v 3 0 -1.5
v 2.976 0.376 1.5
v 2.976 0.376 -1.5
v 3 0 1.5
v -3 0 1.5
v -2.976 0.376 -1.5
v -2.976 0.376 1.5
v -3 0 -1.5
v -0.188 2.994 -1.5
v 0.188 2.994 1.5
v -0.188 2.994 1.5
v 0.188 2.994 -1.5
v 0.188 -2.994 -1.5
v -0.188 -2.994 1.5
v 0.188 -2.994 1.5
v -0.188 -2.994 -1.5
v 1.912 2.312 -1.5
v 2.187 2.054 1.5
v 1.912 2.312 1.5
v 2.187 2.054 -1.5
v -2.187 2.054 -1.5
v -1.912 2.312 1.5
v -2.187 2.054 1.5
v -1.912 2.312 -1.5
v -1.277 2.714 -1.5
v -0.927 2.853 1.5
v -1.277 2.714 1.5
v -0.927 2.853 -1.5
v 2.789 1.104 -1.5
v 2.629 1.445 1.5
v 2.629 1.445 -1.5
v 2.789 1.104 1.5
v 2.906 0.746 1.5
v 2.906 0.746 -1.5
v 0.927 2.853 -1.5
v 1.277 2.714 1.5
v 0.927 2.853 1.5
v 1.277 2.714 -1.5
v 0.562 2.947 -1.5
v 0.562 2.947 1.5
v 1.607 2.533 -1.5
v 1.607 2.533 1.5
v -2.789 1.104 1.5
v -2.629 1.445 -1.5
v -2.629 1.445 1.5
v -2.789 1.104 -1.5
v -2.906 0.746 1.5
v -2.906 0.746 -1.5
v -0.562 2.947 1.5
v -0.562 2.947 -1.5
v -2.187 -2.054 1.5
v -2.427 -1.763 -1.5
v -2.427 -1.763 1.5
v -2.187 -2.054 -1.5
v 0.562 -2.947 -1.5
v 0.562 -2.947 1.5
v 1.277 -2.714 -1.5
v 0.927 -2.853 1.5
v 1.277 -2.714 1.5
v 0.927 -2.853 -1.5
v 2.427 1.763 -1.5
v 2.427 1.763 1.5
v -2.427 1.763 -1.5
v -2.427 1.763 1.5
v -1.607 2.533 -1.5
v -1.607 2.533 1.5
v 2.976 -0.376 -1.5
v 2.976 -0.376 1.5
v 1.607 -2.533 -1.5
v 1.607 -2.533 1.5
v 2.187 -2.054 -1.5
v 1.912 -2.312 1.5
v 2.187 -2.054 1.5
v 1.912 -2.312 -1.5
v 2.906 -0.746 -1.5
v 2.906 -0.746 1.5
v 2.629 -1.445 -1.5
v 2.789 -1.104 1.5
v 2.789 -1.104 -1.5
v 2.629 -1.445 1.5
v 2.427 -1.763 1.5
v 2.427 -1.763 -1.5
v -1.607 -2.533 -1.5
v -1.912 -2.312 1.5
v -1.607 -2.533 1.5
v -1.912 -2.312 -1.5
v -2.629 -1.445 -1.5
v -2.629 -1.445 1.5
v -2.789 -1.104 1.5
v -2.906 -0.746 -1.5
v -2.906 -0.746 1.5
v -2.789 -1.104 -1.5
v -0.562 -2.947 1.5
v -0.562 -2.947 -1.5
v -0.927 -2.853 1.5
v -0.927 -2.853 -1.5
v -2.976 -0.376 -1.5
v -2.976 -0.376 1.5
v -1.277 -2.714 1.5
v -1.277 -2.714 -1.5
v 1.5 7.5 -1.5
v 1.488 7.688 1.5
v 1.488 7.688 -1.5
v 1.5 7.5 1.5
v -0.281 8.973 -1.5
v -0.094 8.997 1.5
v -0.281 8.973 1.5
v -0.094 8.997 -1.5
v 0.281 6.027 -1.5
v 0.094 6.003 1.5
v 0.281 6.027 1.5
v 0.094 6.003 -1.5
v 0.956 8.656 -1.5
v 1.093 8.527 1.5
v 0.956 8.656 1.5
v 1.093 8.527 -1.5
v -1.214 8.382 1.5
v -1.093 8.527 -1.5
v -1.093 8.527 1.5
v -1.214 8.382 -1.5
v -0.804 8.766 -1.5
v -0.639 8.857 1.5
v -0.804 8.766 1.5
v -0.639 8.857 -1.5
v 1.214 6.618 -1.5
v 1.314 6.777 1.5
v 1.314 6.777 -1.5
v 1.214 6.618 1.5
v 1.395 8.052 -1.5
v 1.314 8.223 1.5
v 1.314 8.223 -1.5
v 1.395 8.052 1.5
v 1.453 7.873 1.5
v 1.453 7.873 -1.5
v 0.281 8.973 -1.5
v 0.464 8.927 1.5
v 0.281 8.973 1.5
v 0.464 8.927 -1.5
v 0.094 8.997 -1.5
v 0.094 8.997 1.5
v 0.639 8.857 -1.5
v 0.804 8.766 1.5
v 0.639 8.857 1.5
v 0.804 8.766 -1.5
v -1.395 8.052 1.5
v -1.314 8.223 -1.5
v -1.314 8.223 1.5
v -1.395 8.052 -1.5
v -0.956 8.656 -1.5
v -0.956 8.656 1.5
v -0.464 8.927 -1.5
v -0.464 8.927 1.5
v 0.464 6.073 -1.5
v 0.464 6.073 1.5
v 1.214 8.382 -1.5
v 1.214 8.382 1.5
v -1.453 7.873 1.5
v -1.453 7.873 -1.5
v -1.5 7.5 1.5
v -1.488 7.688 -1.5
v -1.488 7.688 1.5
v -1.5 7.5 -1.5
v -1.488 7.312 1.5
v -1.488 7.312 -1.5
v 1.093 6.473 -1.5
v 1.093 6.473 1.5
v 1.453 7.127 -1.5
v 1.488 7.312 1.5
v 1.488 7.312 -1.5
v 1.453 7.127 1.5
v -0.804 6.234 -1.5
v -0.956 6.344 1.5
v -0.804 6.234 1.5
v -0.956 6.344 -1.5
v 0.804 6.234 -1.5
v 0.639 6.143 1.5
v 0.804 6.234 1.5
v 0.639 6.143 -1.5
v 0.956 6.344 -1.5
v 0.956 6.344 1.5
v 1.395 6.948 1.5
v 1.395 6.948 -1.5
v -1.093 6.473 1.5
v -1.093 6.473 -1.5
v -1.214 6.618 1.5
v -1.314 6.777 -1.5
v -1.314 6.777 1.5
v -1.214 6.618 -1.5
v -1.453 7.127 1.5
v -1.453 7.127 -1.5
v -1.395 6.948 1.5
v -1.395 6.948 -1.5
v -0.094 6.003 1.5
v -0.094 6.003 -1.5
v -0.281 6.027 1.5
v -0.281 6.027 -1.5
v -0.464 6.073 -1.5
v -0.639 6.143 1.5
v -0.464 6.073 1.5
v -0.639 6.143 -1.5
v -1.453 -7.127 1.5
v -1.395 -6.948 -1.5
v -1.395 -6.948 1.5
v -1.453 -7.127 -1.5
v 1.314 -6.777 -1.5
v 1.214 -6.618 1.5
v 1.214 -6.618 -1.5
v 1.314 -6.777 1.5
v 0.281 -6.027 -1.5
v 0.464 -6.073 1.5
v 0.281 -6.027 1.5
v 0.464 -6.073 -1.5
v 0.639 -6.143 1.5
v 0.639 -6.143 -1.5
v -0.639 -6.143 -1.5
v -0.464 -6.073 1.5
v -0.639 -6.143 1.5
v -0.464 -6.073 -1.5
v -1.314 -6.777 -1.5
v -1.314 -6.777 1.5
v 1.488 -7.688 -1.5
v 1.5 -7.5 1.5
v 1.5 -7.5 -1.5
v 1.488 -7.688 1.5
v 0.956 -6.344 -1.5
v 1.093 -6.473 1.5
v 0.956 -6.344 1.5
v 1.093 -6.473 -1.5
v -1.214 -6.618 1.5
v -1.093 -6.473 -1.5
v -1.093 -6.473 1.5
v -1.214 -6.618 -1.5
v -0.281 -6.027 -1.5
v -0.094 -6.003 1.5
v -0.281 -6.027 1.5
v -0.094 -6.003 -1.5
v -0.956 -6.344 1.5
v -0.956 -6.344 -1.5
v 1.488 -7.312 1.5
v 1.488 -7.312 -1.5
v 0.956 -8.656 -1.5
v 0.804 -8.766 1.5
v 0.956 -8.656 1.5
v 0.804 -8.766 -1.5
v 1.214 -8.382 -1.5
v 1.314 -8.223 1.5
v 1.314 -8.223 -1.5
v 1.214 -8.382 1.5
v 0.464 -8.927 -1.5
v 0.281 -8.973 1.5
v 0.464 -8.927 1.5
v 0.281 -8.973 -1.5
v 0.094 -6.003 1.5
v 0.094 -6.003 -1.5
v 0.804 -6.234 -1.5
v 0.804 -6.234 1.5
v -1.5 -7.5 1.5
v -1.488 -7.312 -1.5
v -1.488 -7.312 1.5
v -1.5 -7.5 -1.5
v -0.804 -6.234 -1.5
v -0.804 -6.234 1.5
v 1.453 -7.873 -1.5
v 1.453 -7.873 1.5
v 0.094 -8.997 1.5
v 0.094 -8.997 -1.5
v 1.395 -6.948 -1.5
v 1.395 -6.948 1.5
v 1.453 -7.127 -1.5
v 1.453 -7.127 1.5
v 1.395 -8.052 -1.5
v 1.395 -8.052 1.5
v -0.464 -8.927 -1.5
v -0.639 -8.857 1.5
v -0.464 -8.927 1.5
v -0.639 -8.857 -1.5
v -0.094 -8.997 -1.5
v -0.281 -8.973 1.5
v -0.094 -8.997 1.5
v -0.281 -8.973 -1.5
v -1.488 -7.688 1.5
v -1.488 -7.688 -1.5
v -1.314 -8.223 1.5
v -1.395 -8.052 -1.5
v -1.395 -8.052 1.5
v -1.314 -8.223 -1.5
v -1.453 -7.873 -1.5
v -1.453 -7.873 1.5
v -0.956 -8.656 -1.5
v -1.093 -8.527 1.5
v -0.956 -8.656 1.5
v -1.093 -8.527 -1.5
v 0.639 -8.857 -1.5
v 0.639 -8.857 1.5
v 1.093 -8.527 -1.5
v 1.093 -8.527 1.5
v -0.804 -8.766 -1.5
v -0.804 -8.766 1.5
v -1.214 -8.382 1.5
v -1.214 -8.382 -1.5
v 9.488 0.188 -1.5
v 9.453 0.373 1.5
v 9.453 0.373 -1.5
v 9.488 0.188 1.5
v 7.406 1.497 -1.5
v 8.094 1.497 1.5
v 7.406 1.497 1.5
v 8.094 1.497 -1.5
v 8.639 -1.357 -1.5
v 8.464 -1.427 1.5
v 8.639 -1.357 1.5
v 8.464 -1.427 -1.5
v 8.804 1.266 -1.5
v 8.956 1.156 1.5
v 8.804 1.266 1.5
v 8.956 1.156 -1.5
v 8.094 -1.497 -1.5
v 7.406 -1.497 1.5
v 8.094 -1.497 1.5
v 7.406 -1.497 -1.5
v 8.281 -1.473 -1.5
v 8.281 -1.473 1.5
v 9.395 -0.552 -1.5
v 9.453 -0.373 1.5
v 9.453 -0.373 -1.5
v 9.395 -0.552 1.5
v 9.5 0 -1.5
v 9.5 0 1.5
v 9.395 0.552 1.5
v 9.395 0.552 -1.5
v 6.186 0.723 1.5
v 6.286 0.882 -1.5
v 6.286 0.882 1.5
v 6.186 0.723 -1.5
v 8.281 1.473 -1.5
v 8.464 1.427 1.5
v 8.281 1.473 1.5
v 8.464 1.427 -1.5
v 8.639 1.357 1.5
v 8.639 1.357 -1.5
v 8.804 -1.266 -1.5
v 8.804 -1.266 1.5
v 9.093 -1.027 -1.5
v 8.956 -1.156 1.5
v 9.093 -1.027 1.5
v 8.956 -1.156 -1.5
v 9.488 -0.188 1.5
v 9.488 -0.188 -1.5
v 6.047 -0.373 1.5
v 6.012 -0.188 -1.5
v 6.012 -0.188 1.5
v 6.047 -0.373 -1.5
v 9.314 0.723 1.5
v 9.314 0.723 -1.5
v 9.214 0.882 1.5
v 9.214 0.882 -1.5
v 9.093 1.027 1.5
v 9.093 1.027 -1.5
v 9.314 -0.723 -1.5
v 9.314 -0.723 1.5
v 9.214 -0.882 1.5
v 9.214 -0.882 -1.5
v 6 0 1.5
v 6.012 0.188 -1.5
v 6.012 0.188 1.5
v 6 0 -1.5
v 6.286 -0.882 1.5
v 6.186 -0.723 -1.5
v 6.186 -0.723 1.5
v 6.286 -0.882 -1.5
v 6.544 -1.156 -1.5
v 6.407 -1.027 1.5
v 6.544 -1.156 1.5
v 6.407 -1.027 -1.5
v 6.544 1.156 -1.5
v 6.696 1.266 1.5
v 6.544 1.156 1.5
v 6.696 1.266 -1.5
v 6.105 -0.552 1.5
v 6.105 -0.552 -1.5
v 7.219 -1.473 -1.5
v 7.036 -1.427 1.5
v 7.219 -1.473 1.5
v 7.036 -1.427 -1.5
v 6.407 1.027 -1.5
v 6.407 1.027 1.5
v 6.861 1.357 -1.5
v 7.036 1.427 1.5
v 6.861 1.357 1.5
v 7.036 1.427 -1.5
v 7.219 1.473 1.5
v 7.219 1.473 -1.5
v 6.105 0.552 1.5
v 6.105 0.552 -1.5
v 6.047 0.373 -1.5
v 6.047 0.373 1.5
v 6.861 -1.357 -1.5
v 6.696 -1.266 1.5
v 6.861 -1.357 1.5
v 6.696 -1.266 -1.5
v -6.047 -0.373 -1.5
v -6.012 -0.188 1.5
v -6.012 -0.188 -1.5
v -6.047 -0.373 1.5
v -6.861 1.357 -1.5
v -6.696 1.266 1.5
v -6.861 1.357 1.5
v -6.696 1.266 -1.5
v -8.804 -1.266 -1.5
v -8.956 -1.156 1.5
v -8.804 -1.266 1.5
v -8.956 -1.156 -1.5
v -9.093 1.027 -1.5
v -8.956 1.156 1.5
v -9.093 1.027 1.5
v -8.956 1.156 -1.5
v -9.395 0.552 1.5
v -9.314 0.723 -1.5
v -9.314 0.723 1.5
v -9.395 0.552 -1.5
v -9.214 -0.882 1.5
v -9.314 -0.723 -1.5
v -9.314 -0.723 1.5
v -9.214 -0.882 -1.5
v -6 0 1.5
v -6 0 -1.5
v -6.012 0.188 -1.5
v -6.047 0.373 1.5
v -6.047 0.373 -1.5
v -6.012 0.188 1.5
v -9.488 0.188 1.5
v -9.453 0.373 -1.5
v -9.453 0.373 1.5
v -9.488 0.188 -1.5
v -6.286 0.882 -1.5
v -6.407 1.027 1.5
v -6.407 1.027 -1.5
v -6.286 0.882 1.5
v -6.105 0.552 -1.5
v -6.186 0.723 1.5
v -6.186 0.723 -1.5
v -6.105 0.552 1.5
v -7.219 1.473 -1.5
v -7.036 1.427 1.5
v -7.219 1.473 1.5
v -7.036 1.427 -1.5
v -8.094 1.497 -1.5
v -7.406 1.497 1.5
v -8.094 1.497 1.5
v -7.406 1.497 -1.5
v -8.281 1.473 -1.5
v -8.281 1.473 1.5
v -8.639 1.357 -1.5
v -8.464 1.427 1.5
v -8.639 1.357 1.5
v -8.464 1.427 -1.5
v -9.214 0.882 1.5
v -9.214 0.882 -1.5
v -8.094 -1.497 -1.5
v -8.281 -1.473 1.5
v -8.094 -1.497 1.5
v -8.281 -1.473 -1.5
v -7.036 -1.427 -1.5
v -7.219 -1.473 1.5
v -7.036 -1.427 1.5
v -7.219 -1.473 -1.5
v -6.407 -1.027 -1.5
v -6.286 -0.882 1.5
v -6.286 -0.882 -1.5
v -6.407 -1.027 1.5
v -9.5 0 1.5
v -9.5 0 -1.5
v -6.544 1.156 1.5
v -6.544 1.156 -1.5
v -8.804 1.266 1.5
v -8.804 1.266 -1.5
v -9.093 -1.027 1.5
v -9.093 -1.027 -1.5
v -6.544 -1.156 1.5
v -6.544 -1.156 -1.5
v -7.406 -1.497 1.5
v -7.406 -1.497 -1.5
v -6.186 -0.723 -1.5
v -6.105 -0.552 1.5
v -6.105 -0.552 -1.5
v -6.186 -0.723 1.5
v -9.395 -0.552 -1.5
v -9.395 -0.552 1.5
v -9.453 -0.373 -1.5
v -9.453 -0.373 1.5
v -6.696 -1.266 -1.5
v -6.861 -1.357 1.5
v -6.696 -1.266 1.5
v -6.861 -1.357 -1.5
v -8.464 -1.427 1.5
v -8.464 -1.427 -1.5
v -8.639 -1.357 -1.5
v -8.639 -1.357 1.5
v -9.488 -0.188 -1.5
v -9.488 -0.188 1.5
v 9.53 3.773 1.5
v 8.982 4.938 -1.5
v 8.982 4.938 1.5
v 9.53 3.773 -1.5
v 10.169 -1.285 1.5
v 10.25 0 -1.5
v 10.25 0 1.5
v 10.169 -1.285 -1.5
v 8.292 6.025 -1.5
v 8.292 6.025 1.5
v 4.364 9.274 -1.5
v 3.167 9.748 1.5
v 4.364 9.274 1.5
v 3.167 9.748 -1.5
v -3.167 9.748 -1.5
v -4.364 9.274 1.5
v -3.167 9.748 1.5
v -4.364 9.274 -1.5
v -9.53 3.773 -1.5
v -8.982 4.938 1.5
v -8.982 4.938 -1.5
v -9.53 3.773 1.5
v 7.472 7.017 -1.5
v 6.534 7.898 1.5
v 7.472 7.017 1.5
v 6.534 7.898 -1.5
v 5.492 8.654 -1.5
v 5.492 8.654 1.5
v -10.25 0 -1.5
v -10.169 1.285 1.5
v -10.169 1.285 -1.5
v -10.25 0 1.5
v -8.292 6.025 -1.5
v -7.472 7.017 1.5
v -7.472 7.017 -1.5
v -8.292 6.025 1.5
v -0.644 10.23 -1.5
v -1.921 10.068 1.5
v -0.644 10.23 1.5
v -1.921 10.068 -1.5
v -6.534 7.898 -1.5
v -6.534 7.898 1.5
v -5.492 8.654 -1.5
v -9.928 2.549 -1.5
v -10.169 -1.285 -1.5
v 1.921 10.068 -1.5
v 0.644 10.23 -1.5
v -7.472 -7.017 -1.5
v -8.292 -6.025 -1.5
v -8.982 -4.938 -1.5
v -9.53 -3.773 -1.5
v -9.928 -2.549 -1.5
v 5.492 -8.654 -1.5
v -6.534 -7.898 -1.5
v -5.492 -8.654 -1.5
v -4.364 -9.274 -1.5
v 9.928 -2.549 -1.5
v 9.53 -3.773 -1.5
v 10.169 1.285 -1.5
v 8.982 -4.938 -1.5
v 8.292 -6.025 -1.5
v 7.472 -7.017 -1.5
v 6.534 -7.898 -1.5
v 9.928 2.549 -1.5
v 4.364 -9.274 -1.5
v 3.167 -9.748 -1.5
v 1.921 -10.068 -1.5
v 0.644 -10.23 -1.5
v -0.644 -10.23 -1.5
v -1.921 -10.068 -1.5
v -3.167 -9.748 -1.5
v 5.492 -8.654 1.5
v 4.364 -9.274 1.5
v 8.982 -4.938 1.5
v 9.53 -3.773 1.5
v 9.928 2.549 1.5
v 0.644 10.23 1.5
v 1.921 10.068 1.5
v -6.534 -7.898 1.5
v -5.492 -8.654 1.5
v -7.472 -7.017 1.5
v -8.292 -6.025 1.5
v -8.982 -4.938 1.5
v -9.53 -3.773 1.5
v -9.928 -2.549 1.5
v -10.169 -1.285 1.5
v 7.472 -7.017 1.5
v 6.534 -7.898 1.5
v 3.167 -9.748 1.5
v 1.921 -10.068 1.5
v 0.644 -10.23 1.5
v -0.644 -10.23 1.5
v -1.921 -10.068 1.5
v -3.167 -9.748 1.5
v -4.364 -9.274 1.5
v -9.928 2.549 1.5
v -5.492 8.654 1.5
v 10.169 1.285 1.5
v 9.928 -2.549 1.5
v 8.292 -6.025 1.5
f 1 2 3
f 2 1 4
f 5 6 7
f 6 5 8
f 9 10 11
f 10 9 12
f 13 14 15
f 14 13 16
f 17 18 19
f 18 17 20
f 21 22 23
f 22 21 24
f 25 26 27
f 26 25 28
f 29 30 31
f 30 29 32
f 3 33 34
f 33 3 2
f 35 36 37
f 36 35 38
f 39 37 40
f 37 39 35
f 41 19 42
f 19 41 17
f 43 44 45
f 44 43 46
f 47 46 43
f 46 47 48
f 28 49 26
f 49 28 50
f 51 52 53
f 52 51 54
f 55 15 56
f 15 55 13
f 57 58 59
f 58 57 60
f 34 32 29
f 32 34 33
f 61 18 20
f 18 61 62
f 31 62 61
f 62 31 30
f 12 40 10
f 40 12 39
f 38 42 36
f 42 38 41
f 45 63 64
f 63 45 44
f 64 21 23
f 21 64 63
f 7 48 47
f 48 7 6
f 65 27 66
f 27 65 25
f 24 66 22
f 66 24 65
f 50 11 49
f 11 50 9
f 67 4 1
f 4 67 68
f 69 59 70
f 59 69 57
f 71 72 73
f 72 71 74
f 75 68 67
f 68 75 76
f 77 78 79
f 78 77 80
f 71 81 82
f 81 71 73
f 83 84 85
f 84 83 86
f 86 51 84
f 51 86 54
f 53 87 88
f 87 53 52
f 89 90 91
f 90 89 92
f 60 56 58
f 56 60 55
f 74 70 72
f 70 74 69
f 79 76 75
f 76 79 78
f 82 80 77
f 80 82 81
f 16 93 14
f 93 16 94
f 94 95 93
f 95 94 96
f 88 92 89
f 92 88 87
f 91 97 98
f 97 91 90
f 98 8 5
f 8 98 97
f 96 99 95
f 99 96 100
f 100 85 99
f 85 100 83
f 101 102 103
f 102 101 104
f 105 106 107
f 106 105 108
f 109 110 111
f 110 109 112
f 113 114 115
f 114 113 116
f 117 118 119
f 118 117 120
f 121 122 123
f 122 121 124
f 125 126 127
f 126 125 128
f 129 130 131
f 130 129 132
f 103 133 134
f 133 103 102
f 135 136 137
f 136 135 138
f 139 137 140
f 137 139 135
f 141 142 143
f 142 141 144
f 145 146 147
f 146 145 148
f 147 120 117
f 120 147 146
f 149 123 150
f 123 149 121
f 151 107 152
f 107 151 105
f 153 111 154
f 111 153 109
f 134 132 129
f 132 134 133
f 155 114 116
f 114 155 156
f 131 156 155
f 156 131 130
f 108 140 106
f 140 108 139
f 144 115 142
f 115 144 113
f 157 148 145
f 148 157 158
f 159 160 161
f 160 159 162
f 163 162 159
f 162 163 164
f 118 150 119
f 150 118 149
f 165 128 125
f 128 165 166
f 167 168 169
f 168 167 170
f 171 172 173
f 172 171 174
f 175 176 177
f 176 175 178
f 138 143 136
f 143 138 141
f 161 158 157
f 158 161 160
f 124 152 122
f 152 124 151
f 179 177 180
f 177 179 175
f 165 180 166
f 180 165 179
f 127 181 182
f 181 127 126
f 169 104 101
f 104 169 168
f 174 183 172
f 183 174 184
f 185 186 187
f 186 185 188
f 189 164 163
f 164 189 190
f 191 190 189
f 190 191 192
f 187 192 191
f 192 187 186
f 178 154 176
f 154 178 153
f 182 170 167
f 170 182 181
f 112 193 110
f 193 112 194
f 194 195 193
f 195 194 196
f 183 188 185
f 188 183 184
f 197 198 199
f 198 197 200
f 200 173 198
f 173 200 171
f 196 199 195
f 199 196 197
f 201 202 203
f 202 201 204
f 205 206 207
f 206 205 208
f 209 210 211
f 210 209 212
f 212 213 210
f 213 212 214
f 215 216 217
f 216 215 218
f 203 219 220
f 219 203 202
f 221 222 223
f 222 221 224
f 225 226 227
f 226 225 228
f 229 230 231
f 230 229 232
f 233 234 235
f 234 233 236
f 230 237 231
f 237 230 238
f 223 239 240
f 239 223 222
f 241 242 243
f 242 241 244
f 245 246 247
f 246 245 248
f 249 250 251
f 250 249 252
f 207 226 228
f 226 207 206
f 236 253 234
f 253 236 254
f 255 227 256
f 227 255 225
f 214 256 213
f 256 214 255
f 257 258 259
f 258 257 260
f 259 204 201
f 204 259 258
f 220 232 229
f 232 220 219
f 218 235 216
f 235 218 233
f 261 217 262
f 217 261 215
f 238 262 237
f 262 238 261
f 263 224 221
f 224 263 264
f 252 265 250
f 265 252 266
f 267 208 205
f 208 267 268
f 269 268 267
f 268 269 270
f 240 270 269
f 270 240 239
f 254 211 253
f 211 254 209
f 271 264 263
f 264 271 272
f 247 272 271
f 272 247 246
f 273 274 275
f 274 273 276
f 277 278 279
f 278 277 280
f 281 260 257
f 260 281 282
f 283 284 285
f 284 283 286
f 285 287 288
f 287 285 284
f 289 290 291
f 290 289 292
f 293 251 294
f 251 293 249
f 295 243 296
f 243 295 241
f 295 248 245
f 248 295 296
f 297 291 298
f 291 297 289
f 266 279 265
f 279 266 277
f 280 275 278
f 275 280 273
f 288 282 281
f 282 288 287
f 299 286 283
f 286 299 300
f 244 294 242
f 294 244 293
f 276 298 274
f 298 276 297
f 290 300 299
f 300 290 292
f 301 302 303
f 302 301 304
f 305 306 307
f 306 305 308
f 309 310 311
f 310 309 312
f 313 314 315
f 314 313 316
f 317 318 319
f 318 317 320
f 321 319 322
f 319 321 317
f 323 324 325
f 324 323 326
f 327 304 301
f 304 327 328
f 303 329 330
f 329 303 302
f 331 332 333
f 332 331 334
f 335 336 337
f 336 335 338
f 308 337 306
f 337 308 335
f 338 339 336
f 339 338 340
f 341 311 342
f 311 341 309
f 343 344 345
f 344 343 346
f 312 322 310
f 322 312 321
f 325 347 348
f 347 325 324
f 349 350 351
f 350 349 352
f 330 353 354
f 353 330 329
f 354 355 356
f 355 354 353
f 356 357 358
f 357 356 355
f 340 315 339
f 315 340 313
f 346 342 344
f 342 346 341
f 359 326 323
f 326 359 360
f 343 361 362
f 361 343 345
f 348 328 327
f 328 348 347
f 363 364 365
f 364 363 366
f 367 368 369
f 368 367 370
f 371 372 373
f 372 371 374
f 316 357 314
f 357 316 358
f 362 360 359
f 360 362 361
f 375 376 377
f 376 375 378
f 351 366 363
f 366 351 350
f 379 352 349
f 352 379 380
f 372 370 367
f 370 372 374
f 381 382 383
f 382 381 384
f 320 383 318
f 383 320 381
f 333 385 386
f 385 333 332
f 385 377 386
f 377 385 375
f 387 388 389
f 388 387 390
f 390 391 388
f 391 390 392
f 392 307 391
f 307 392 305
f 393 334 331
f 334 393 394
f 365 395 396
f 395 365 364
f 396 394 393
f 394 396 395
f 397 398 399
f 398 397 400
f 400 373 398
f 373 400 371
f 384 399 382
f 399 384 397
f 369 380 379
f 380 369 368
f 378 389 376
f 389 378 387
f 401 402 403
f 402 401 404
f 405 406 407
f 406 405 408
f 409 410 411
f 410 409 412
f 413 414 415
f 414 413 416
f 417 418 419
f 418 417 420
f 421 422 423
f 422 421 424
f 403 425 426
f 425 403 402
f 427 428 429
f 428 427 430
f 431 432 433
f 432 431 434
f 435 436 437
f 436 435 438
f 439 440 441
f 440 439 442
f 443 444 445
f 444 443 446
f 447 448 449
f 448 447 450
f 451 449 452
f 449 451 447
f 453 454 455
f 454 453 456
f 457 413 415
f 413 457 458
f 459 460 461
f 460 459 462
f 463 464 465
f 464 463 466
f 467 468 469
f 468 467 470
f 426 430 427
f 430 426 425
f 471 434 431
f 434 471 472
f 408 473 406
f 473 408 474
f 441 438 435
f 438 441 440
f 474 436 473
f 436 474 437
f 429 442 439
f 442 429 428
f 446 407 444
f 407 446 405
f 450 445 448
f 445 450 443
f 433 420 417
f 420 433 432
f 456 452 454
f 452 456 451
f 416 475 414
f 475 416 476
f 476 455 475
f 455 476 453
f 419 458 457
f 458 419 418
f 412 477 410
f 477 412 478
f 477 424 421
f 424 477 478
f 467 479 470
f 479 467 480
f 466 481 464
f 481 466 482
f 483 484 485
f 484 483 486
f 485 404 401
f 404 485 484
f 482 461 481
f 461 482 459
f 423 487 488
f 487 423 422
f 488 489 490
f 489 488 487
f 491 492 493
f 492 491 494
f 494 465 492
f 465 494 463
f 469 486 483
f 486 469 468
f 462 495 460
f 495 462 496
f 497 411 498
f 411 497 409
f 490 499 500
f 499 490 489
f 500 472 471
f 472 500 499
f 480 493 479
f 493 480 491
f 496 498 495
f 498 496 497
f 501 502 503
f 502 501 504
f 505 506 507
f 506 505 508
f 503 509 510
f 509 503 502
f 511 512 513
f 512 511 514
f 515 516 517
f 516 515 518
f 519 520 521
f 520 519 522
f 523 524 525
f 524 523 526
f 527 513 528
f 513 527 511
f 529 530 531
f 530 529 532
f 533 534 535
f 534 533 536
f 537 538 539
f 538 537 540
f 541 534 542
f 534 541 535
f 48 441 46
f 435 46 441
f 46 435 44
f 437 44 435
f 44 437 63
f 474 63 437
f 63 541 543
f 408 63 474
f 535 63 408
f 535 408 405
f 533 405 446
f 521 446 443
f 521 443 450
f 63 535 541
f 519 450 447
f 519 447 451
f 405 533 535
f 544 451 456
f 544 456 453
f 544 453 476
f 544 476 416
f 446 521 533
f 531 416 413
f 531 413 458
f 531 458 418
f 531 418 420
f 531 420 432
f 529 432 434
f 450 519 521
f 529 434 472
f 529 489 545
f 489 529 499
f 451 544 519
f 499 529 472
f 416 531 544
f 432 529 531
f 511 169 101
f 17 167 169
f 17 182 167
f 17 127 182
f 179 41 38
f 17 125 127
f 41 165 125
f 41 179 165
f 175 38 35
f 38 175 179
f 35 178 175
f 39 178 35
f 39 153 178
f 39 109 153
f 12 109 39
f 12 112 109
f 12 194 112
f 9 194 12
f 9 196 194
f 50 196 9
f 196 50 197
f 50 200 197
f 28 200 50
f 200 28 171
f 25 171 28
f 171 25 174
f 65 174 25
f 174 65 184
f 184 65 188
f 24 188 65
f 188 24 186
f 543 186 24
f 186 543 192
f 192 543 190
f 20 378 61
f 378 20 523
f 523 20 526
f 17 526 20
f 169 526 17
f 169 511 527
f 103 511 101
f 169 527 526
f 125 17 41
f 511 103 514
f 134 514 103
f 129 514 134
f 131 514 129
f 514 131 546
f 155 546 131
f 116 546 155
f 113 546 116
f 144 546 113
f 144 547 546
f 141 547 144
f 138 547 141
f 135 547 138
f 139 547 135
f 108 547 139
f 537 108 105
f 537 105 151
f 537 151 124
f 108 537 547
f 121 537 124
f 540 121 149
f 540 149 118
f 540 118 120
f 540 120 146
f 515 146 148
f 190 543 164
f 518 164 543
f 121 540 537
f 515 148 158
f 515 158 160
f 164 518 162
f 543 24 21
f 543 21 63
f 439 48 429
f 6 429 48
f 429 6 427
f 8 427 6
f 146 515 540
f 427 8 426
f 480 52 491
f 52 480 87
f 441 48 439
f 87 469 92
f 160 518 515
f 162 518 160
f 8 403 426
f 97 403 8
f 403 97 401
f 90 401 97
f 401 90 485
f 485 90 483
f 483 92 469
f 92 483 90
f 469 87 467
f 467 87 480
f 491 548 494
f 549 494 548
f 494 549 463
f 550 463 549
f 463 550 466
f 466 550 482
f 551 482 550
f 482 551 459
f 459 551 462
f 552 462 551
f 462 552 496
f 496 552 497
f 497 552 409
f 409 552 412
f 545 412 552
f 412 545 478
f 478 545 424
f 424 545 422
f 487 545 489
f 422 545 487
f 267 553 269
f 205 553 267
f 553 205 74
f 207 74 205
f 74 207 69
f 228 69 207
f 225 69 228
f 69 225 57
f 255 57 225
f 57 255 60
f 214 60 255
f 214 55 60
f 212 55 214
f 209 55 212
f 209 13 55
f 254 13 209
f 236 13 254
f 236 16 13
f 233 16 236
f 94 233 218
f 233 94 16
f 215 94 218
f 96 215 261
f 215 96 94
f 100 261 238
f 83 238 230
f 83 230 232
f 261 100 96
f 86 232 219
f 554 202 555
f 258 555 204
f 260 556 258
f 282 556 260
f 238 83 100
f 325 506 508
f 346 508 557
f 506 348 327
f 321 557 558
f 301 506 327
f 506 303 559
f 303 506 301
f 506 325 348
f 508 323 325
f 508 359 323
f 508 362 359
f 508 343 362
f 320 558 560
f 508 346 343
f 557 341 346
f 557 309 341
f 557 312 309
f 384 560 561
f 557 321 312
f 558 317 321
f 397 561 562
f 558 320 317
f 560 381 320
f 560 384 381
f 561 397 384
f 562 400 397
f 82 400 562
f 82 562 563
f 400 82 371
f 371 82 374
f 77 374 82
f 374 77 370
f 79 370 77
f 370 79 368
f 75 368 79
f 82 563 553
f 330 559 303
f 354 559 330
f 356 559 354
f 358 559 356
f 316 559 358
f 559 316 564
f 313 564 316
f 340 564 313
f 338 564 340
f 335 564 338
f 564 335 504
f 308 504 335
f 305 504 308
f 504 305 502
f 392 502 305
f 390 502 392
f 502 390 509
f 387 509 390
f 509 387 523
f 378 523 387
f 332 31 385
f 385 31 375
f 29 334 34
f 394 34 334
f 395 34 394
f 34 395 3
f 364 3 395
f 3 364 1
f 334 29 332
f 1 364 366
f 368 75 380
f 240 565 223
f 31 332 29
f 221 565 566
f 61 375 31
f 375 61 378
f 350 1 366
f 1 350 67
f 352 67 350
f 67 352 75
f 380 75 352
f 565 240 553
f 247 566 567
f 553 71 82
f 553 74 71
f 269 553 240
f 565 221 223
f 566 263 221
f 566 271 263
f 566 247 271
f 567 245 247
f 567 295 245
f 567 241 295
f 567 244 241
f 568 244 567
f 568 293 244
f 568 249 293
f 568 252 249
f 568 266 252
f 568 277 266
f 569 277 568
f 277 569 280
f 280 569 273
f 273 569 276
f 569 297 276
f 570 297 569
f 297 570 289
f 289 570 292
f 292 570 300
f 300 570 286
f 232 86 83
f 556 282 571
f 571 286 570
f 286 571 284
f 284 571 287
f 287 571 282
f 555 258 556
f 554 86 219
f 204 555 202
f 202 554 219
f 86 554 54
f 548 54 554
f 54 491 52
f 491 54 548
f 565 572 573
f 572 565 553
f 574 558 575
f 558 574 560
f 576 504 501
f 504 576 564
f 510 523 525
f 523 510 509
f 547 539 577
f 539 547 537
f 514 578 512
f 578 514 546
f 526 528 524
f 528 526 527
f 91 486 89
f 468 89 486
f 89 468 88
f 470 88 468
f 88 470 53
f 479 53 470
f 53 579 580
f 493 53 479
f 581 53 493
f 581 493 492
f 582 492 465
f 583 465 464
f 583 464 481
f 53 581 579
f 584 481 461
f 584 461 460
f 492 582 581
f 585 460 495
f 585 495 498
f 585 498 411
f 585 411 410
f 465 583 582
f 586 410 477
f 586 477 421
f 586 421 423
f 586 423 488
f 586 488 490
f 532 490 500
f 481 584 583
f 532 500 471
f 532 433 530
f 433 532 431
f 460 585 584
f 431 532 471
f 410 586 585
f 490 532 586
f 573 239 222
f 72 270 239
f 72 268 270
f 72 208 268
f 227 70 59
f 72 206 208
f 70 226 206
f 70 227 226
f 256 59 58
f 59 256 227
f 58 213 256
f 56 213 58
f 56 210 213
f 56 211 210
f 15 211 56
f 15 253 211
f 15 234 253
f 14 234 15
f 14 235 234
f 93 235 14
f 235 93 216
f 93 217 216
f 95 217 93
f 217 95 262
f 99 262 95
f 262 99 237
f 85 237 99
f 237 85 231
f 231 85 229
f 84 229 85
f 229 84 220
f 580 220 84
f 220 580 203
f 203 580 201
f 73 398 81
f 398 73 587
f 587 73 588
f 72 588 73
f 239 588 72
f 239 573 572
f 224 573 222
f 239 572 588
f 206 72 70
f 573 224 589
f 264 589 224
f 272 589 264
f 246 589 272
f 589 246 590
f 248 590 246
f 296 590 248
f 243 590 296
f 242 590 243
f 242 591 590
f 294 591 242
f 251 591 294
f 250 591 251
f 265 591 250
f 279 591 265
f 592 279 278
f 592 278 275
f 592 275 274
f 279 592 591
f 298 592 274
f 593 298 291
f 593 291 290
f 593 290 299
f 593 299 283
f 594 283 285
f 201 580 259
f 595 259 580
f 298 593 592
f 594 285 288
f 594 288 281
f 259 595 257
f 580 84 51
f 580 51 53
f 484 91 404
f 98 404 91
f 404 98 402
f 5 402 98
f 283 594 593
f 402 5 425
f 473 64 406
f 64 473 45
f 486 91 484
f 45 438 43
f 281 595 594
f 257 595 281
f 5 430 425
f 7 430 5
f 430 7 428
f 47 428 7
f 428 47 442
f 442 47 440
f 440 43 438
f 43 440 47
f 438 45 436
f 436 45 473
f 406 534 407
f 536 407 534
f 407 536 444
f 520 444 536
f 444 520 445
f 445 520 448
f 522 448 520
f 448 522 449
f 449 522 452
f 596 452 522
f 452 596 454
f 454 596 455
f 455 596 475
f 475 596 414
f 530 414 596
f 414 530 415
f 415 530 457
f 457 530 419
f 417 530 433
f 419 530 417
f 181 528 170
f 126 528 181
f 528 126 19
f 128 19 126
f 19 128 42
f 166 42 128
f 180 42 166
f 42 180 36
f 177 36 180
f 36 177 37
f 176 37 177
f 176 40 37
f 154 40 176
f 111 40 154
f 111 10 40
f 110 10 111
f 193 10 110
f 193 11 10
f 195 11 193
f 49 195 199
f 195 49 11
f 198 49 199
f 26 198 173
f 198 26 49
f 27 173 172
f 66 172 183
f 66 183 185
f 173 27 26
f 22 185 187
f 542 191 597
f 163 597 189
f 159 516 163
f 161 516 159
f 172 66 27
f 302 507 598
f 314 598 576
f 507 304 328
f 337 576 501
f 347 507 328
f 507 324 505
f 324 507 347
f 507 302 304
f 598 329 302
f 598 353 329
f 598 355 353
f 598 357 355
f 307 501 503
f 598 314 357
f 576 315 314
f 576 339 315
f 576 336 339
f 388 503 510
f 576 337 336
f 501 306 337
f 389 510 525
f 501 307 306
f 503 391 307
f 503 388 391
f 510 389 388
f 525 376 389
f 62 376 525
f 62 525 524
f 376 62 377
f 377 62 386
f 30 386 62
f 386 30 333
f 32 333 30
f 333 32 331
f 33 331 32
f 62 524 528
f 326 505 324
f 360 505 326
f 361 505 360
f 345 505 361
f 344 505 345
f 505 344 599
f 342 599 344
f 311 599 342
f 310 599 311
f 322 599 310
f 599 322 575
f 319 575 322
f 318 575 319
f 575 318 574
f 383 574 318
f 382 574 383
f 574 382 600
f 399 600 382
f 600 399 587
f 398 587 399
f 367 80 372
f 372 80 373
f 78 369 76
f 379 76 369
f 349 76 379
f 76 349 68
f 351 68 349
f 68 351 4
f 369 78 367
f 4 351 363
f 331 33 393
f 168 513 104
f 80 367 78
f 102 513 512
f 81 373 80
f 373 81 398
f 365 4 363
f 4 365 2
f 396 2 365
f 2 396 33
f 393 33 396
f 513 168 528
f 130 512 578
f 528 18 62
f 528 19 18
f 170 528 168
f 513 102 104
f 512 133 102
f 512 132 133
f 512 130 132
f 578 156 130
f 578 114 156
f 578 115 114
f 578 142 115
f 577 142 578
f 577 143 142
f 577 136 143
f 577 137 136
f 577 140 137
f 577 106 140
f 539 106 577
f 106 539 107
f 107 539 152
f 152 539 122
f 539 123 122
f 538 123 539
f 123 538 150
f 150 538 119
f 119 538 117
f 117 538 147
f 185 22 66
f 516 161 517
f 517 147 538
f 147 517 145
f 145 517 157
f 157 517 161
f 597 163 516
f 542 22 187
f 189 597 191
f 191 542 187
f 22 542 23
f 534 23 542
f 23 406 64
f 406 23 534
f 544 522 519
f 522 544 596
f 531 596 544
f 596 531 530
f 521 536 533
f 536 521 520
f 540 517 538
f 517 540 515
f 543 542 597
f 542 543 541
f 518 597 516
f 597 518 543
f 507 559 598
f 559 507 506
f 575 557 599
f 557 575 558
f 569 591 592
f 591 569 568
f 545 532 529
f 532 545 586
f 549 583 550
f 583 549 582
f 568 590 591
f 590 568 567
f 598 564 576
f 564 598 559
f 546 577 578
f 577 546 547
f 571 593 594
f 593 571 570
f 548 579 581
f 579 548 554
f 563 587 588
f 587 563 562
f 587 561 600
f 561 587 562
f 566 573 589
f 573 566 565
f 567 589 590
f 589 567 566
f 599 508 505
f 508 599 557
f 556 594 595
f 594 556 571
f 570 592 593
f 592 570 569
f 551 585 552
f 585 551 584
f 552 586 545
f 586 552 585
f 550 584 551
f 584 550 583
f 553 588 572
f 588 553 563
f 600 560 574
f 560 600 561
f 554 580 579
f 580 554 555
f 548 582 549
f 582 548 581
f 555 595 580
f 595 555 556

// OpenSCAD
$fn = 50;


difference() {
	union() {
		translate(v = [0, 0, -1.5000000000]) {
			rotate(a = [0, 0, 0]) {
				cylinder(h = 3, r = 10.2500000000);
			}
		}
	}
	union() {
		translate(v = [0, 0, -125.0000000000]) {
			rotate(a = [0, 0, 0]) {
				cylinder(h = 250, r = 3.0000000000);
			}
		}
		translate(v = [0, 7.5000000000, -125.0000000000]) {
			rotate(a = [0, 0, 0]) {
				cylinder(h = 250, r = 1.5000000000);
			}
		}
		translate(v = [0, -7.5000000000, -125.0000000000]) {
			rotate(a = [0, 0, 0]) {
				cylinder(h = 250, r = 1.5000000000);
			}
		}
		translate(v = [7.7500000000, 0, -125.0000000000]) {
			rotate(a = [0, 0, 0]) {
				hull() {
					translate(v = [0.2500000000, 0, 0]) {
						rotate(a = [0, 0, 0]) {
							translate(v = [0, 0, 0]) {
								rotate(a = [0, 0, 0]) {
									cylinder(h = 250, r = 1.5000000000);
								}
							}
						}
					}
					translate(v = [-0.2500000000, 0, 0]) {
						rotate(a = [0, 0, 0]) {
							translate(v = [0, 0, 0]) {
								rotate(a = [0, 0, 0]) {
									cylinder(h = 250, r = 1.5000000000);
								}
							}
						}
					}
				}
			}
		}
		translate(v = [-7.7500000000, 0, -125.0000000000]) {
			rotate(a = [0, 0, 0]) {
				hull() {
					translate(v = [0.2500000000, 0, 0]) {
						rotate(a = [0, 0, 0]) {
							translate(v = [0, 0, 0]) {
								rotate(a = [0, 0, 0]) {
									cylinder(h = 250, r = 1.5000000000);
								}
							}
						}
					}
					translate(v = [-0.2500000000, 0, 0]) {
						rotate(a = [0, 0, 0]) {
							translate(v = [0, 0, 0]) {
								rotate(a = [0, 0, 0]) {
									cylinder(h = 250, r = 1.5000000000);
								}
							}
						}
					}
				}
			}
		}
	}
}
